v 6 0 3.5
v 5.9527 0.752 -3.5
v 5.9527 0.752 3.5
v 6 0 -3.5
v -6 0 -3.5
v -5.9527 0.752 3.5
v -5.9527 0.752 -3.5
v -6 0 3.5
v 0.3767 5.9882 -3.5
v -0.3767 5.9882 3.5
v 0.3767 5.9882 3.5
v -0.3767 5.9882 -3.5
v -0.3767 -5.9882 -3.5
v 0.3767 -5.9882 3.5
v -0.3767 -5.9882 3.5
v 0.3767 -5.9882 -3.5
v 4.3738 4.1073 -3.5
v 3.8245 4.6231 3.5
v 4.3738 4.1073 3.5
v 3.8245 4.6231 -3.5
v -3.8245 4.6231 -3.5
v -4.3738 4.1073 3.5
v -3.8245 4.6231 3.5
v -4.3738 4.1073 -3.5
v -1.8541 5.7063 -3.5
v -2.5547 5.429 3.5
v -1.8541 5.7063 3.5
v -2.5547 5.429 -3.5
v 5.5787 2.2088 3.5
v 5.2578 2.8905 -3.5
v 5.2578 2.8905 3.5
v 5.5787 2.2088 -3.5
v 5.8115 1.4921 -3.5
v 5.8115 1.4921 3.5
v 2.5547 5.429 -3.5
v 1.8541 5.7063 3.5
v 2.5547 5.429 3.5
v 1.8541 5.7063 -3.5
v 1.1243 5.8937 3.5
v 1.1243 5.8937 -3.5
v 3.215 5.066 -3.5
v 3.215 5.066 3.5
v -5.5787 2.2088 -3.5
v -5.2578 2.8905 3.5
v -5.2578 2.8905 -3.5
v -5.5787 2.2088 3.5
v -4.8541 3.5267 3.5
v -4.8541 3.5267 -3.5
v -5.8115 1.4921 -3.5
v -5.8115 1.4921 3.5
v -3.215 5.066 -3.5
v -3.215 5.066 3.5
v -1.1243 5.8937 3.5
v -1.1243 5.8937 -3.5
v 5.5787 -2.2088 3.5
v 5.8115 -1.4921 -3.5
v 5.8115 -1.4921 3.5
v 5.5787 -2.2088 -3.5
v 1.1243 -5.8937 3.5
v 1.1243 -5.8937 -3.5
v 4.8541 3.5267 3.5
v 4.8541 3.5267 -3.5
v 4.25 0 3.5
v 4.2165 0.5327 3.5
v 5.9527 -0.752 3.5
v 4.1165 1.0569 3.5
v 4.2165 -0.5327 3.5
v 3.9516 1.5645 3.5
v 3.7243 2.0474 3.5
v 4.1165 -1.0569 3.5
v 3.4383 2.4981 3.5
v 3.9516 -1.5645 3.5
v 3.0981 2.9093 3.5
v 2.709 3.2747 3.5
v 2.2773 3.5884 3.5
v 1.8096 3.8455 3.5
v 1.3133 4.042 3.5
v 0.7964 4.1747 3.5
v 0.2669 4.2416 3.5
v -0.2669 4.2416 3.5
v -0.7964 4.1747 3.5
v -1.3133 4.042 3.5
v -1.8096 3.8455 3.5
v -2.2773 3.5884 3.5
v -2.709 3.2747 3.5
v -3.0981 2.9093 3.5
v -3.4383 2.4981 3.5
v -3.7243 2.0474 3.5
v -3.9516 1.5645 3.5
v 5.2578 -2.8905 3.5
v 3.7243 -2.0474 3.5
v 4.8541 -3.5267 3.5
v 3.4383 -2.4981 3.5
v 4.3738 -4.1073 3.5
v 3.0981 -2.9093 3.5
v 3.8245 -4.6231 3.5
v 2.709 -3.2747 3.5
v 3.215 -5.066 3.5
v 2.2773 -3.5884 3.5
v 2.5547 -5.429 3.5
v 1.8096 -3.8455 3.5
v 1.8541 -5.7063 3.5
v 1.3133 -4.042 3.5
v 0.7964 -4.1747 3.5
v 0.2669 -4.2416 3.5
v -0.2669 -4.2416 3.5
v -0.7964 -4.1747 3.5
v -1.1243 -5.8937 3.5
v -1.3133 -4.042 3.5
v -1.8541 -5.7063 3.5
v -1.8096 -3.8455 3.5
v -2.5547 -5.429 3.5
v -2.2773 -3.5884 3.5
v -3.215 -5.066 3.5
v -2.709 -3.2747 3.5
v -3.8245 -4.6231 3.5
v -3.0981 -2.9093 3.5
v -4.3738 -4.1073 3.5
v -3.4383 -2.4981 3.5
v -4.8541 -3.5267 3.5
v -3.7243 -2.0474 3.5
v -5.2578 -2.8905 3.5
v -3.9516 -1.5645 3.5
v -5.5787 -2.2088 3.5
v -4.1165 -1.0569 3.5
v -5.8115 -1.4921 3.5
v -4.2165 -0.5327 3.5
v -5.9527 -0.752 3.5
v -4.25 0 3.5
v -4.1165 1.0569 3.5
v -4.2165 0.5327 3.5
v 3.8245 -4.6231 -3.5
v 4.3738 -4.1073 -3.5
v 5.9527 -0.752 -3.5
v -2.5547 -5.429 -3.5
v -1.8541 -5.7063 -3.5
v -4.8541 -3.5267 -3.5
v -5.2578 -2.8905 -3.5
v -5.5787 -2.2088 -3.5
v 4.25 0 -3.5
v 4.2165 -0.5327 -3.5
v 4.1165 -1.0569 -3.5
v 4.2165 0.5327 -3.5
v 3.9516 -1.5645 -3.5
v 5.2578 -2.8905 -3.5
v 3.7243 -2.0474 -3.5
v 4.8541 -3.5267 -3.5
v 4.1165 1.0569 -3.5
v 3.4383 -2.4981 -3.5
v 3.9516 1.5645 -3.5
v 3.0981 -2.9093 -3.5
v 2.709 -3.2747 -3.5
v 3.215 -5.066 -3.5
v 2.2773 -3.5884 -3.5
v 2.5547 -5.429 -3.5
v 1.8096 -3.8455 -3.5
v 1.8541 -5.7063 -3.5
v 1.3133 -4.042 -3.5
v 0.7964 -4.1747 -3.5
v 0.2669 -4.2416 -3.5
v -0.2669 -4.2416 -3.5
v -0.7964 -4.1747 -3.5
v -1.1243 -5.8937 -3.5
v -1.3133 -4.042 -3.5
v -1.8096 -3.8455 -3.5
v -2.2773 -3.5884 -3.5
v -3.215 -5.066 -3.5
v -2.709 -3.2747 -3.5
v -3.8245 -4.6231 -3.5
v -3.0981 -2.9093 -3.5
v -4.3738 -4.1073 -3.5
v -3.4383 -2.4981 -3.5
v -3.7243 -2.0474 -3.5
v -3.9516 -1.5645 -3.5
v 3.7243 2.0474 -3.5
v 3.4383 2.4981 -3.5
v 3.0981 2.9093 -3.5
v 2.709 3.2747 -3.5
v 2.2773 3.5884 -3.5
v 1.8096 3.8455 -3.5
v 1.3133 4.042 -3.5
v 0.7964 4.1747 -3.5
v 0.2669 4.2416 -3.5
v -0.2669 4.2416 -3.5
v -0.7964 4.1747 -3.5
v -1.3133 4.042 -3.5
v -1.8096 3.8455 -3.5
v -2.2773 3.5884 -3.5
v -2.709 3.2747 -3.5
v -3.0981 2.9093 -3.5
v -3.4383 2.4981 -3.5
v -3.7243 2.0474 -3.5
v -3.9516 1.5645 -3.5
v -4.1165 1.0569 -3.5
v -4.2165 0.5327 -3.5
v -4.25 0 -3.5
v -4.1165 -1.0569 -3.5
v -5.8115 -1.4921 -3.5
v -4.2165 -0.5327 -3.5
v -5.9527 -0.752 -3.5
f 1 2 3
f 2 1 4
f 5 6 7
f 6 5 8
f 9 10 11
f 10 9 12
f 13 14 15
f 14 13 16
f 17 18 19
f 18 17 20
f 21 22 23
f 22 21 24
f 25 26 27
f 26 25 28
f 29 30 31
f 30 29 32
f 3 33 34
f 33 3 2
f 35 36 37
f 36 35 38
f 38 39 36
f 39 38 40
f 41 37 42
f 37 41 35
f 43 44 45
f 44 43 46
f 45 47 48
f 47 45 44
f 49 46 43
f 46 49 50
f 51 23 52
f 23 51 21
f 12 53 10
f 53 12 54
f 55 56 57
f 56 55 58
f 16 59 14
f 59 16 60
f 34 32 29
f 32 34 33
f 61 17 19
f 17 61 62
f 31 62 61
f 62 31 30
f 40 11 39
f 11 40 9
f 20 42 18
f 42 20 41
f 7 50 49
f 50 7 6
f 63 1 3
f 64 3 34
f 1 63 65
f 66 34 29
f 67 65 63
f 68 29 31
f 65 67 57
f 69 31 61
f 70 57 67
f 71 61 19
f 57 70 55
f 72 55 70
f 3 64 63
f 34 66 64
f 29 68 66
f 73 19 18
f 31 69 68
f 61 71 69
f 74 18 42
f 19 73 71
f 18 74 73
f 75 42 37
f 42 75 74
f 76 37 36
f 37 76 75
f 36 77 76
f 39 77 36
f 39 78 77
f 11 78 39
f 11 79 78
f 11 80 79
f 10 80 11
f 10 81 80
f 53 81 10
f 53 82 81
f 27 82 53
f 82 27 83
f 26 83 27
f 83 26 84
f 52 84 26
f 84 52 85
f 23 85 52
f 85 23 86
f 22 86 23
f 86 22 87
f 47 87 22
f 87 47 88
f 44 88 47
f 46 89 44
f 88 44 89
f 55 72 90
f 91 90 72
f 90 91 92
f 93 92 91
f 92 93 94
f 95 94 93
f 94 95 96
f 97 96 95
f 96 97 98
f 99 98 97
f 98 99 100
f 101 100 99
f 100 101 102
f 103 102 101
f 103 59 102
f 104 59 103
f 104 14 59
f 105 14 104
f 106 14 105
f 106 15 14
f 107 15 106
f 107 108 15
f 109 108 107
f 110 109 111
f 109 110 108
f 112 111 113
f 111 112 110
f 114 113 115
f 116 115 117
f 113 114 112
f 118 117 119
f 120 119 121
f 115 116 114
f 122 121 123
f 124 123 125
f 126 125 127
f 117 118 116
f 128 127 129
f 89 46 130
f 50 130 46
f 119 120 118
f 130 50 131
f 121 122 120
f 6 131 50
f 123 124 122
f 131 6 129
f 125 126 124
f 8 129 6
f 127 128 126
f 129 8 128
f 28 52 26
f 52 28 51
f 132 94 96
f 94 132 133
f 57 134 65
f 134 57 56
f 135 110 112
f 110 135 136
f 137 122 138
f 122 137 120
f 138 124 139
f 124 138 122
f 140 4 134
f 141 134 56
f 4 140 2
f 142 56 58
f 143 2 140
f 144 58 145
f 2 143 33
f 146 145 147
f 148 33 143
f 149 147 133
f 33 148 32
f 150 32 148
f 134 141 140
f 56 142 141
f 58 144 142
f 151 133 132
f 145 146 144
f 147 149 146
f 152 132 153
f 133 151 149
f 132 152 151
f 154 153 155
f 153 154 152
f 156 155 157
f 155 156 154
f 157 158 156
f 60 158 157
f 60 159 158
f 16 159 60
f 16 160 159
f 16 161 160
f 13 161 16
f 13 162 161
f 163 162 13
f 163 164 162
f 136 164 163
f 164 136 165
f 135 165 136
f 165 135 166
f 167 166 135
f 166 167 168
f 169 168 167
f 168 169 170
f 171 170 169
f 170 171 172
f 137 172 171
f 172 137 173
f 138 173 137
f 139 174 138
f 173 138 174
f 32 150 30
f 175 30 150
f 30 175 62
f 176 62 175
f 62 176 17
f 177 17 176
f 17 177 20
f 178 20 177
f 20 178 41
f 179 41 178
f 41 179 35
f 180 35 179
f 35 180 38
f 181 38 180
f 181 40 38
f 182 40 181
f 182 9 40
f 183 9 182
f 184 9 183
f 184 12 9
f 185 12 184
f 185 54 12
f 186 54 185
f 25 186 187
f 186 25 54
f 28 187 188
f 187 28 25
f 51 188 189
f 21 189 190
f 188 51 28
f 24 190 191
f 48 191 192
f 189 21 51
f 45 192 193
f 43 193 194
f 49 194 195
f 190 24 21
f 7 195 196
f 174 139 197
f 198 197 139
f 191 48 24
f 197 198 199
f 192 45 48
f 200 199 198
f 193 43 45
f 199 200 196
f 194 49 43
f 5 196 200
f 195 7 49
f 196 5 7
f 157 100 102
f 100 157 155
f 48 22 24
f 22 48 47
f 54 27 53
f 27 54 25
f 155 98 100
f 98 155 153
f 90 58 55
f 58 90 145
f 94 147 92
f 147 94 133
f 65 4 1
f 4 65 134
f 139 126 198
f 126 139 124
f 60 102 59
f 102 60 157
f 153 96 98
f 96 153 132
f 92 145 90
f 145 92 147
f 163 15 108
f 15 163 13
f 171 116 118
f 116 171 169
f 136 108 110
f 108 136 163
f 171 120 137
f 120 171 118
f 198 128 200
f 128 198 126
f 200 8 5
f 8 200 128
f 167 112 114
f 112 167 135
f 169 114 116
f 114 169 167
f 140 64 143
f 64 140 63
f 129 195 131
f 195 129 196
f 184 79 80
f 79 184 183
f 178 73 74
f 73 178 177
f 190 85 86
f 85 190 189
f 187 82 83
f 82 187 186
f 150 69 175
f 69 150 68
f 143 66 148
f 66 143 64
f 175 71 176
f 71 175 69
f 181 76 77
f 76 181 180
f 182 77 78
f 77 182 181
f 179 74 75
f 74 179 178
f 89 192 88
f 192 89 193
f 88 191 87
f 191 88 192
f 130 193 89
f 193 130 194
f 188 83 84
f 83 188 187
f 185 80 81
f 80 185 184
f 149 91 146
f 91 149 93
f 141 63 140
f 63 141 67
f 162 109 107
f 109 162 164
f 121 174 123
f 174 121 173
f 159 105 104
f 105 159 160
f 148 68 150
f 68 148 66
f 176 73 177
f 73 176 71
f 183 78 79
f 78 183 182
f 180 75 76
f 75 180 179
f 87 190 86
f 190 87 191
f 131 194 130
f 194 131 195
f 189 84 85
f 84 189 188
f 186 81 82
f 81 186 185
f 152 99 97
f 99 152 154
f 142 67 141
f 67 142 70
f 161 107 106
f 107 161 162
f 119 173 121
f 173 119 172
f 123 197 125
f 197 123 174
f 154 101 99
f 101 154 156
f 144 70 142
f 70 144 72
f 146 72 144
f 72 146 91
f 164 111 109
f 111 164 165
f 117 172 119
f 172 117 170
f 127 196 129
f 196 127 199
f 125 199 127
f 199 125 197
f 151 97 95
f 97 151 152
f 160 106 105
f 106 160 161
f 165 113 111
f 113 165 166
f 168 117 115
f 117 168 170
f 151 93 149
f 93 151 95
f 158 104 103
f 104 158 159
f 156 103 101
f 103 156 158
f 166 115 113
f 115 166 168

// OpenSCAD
$fn = 50;


difference() {
	union() {
		translate(v = [0, 0, -3.5000000000]) {
			cylinder(h = 7, r = 6.0000000000);
		}
	}
	union() {
		translate(v = [0, 0, -100.0000000000]) {
			cylinder(h = 200, r = 4.2500000000);
		}
	}
}
